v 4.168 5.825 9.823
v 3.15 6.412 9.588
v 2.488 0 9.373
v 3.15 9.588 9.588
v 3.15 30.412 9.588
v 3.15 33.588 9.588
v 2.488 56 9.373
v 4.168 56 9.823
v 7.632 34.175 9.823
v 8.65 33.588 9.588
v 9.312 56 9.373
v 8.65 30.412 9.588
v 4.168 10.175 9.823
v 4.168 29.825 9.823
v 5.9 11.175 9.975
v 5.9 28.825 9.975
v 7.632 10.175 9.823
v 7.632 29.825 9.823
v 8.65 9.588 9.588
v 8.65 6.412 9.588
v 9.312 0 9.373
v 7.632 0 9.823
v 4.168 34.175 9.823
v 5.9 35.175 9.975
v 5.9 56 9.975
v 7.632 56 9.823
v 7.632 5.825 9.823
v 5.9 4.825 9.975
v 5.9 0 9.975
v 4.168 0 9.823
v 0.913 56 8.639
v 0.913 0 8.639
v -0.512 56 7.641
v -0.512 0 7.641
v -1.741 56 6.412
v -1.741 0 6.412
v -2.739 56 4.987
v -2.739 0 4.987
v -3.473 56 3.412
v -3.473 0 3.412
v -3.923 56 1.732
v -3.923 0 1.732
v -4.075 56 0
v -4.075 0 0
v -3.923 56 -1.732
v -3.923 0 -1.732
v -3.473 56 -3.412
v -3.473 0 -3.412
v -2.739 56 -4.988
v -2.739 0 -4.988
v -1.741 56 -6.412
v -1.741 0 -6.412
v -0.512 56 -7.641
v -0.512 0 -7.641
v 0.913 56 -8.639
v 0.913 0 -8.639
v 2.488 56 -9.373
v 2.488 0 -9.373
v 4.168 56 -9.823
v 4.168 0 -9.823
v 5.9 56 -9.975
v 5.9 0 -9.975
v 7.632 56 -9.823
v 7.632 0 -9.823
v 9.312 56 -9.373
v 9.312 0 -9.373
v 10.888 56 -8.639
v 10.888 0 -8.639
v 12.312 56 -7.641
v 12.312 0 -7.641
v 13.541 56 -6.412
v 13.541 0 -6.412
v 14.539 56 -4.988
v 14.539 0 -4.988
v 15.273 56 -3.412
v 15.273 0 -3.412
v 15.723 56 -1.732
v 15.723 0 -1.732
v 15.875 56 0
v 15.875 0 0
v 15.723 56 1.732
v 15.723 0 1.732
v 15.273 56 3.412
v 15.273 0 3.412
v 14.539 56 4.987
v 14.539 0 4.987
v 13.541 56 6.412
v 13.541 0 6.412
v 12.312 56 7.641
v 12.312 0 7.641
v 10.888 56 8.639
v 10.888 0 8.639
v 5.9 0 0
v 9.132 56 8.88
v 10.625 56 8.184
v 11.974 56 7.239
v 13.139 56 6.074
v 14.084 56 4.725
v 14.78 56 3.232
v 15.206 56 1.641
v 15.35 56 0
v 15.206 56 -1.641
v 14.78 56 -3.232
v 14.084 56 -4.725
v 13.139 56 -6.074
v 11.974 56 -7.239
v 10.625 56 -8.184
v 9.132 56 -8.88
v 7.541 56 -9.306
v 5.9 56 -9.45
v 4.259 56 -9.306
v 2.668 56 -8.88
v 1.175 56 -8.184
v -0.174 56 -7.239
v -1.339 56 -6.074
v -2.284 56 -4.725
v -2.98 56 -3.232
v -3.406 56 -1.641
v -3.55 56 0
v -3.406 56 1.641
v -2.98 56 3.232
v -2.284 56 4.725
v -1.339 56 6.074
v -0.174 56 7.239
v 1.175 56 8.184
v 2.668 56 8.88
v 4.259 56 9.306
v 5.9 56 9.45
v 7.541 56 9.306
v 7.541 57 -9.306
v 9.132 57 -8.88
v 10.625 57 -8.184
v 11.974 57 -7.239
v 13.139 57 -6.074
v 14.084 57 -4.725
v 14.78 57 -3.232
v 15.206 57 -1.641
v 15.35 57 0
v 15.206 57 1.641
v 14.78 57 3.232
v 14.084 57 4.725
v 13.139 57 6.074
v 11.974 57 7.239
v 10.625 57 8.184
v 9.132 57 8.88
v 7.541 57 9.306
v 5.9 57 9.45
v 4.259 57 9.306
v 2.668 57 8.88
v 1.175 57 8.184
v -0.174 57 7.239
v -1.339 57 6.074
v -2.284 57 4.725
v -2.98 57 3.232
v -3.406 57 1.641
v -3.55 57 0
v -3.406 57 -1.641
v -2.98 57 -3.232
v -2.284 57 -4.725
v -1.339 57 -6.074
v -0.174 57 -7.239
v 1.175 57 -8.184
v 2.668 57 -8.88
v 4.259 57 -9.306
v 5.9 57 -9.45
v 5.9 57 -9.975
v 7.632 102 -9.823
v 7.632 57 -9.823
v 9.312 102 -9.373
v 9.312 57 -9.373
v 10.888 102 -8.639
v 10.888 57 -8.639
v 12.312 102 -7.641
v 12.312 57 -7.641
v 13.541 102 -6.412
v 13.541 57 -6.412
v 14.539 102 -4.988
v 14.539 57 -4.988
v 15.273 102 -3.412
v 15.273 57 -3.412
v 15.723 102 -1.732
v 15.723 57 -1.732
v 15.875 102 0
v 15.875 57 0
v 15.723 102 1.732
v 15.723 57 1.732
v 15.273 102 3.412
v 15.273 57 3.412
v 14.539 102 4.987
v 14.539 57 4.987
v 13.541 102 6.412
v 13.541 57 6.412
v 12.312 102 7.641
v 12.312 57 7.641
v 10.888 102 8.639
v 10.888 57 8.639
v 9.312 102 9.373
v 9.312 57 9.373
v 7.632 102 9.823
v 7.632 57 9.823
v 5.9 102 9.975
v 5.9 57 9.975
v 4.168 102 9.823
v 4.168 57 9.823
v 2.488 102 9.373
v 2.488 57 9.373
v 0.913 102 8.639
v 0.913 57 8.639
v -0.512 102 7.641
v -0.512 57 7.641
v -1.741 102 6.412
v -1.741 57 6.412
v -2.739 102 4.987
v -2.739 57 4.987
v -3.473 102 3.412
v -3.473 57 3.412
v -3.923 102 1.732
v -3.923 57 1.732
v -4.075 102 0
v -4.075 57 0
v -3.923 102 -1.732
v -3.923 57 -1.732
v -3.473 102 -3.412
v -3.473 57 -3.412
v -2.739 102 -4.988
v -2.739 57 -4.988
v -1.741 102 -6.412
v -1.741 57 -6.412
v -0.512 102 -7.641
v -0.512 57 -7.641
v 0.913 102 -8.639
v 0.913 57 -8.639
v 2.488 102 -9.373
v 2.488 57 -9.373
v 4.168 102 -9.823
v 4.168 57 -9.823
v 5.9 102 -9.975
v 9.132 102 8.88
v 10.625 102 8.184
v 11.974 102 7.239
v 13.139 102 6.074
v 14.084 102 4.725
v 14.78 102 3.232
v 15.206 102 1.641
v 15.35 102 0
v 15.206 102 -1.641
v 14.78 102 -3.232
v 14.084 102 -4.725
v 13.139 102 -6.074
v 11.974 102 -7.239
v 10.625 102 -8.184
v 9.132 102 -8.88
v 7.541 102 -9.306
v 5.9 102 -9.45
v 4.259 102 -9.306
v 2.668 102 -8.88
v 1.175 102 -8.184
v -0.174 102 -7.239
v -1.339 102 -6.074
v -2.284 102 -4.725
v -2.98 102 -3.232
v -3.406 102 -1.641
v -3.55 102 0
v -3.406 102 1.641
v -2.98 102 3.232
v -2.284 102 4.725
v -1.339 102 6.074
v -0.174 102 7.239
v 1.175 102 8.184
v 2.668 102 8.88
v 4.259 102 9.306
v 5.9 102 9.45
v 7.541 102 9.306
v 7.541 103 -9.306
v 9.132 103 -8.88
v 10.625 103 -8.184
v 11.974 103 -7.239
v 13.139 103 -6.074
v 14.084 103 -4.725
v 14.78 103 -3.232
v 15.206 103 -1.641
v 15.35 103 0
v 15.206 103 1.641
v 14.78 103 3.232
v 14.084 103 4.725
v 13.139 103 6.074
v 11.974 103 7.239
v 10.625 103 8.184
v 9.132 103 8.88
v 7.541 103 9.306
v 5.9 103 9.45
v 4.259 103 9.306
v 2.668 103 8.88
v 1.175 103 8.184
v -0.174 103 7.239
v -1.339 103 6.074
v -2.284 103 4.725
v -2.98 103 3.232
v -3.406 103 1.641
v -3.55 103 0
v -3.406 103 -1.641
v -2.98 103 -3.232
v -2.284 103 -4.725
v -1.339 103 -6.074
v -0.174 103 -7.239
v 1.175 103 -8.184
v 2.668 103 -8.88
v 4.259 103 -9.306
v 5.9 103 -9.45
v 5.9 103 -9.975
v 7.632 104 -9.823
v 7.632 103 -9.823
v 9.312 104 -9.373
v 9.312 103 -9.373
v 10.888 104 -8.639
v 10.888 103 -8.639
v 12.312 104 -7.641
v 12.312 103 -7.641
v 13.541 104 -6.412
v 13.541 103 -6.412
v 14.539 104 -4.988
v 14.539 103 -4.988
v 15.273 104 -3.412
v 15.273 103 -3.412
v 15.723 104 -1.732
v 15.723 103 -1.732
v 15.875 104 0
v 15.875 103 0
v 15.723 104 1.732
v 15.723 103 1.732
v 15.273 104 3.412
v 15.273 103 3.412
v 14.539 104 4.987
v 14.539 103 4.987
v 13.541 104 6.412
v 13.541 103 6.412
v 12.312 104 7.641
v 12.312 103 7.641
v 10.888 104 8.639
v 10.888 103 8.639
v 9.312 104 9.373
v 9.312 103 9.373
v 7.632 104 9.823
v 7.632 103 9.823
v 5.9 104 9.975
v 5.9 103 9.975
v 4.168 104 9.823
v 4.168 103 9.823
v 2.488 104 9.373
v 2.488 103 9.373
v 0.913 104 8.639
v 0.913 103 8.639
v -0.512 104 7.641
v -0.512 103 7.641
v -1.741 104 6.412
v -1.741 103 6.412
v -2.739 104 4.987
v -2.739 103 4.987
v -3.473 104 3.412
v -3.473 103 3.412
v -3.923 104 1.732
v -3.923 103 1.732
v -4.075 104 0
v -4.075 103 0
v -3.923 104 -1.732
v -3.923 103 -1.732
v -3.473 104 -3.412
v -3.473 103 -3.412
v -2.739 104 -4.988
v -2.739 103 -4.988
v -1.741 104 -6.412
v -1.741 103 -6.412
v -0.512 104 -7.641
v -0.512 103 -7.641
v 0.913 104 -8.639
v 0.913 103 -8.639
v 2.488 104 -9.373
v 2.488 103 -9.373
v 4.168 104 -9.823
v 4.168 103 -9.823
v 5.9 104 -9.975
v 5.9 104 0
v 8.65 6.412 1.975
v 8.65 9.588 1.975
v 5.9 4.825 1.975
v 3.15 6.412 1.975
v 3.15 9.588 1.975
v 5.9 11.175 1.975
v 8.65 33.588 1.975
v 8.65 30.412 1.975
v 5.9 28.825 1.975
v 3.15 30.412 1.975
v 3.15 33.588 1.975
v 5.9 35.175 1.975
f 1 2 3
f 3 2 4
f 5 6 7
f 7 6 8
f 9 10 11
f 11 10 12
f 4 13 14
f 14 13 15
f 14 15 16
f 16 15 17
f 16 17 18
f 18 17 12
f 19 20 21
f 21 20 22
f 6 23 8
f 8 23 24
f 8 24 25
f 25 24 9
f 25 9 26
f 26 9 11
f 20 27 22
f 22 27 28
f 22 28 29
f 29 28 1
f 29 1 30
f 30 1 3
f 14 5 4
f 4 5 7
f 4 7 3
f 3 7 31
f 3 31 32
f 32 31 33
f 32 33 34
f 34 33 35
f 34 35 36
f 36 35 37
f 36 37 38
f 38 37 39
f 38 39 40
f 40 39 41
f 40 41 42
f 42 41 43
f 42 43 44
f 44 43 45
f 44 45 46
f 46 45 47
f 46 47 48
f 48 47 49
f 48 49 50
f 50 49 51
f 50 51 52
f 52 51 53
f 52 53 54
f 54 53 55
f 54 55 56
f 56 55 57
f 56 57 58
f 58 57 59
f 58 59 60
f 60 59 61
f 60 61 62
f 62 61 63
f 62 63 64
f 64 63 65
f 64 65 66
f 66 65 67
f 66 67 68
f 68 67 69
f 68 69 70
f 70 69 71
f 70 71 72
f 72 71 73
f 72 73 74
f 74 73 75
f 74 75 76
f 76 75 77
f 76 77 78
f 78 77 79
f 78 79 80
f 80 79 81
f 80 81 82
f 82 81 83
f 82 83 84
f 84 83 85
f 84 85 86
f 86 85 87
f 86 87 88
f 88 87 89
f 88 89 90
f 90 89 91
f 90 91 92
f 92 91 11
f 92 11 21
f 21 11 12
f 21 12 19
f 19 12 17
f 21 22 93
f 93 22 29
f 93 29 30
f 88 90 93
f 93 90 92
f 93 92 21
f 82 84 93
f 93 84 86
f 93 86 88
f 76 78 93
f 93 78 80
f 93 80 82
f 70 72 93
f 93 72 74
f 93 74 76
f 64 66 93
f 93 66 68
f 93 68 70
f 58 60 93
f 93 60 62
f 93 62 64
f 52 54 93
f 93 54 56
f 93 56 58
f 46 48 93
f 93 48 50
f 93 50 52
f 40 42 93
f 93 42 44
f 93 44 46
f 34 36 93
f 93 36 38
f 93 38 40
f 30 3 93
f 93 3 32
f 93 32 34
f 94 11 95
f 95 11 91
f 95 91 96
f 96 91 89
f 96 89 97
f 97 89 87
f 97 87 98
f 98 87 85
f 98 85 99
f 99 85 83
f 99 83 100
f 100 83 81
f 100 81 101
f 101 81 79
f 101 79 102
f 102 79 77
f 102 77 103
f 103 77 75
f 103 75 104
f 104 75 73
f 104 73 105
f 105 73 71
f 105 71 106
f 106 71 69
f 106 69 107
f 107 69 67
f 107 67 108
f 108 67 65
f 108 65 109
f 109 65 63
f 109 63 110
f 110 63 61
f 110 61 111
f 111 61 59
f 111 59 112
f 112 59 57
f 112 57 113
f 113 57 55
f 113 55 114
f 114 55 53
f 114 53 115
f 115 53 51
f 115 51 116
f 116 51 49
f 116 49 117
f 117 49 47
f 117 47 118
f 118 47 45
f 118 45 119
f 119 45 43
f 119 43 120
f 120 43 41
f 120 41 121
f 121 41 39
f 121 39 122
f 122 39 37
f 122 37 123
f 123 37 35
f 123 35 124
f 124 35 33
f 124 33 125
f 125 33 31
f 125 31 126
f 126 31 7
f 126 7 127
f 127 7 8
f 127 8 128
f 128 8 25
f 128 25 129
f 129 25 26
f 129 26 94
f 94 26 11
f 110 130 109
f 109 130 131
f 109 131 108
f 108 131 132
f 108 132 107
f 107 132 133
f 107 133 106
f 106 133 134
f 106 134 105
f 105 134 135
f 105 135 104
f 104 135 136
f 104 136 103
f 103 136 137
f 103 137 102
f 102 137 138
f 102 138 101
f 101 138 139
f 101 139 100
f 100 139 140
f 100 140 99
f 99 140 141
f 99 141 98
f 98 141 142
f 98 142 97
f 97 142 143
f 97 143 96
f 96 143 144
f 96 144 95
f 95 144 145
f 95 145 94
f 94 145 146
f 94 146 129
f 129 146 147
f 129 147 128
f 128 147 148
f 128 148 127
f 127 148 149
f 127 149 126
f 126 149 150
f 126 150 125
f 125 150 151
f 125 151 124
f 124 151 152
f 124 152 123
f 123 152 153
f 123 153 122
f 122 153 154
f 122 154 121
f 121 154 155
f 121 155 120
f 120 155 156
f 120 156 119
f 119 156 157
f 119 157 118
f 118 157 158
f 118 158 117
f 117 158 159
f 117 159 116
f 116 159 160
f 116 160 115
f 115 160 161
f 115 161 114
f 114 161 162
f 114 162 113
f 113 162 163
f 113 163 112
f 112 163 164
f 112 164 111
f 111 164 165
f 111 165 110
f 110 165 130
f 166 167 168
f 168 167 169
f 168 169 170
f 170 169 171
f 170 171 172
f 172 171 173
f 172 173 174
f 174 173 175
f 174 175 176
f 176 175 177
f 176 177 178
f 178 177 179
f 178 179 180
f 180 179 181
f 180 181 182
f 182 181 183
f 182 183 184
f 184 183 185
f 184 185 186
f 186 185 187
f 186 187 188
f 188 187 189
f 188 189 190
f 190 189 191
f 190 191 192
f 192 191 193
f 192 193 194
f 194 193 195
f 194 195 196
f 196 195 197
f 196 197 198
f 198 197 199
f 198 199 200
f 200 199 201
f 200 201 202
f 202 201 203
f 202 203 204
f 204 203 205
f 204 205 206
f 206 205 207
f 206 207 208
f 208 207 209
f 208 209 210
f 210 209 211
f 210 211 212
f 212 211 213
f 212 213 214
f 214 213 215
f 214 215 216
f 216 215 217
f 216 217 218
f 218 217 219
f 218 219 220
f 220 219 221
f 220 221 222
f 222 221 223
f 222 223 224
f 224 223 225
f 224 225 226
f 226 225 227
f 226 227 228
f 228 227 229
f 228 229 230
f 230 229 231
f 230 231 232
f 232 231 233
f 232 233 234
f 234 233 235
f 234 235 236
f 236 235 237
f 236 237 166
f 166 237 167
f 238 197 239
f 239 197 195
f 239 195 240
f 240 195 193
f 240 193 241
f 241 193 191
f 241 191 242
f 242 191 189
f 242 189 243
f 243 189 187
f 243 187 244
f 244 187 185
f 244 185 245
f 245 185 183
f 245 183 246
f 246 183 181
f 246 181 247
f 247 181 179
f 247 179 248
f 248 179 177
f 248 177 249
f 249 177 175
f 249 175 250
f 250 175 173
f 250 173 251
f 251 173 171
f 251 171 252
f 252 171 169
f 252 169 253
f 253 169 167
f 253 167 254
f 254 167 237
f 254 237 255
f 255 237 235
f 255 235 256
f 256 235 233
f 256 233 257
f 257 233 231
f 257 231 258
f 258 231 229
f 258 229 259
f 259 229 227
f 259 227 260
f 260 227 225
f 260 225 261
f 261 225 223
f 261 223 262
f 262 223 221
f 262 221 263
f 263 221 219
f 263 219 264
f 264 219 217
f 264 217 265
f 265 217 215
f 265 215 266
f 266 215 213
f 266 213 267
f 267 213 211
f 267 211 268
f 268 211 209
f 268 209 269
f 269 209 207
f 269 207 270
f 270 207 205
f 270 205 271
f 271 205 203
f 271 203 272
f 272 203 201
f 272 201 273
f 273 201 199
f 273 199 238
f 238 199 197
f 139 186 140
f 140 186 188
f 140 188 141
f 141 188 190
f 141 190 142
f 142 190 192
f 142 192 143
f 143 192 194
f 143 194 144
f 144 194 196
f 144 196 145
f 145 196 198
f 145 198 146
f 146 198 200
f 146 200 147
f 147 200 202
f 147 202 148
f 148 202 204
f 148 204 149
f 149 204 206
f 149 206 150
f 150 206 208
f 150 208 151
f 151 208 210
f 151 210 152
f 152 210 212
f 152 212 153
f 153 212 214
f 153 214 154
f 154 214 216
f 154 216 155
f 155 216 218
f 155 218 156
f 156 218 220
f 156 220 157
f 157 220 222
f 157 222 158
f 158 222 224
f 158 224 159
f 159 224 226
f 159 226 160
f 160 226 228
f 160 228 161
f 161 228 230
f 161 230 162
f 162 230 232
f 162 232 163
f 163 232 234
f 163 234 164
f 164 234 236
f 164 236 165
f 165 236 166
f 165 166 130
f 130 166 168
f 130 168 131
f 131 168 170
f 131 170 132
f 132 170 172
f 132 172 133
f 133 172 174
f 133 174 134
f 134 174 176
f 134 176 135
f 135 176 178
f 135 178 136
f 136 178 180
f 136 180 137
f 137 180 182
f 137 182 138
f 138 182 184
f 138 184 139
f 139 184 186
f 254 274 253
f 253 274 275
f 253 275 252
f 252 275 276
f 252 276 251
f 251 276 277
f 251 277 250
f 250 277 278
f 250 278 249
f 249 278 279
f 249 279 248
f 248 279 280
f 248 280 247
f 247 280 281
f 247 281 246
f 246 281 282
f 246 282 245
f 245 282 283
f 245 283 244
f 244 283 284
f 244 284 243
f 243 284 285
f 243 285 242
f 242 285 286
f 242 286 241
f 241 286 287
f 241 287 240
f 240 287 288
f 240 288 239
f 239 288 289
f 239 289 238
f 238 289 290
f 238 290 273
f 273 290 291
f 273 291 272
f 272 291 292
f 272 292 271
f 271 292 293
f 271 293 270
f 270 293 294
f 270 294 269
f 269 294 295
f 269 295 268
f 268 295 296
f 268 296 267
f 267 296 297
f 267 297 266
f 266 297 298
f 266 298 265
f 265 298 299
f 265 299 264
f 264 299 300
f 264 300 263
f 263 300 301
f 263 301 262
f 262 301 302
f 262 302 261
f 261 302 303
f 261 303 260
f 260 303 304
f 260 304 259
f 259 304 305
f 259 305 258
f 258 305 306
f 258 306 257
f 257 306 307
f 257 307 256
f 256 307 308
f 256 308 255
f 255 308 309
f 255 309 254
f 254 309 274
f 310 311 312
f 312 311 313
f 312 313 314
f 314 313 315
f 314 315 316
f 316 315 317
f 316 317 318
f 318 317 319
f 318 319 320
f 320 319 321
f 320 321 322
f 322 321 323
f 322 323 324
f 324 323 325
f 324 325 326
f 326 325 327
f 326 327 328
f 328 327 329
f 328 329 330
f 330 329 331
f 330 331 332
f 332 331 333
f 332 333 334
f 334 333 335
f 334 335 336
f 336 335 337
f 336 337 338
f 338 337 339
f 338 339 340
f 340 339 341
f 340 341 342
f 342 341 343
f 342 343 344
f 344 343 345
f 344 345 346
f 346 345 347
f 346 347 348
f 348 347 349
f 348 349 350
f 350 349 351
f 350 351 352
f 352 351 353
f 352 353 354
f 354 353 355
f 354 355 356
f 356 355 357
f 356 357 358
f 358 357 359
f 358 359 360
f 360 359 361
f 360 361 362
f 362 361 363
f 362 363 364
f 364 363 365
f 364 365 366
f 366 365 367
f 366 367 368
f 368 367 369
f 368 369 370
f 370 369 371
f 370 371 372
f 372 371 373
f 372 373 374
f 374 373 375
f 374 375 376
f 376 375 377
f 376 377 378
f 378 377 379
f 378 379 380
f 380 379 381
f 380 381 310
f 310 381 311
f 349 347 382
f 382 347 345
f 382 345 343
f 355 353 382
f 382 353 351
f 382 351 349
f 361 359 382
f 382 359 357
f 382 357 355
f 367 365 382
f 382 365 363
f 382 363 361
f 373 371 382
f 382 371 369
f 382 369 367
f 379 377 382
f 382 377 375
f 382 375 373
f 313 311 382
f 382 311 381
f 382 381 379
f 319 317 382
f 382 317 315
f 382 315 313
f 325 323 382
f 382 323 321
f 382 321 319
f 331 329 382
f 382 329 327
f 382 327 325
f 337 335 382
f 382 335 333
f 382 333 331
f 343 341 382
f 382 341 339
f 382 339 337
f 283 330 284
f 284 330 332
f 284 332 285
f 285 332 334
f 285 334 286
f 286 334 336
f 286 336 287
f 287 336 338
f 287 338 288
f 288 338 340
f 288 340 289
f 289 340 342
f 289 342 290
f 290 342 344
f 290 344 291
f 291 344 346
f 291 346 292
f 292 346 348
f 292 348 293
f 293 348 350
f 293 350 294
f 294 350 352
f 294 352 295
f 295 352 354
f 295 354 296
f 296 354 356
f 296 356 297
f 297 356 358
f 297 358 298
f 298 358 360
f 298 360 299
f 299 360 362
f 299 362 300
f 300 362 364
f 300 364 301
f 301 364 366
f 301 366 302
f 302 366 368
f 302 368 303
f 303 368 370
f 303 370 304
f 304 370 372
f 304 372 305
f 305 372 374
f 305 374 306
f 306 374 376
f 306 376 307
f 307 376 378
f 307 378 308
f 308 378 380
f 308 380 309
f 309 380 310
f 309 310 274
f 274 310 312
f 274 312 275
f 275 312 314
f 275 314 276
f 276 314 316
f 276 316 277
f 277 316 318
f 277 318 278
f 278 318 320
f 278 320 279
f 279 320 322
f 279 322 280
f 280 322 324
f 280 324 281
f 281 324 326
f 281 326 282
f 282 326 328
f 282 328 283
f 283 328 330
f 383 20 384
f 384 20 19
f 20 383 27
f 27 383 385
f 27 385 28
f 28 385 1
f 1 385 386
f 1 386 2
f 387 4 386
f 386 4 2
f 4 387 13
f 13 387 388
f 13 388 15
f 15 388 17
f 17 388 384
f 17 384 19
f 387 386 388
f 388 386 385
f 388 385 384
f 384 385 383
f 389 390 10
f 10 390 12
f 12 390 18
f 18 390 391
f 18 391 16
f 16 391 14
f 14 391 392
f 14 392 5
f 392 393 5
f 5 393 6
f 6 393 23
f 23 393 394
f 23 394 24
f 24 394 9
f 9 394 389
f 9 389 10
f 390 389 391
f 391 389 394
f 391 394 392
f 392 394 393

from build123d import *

# Parameters (mm, degrees)
SKETCH_1_R          = 9.975
EXTRUDE_1_DEPTH     = 40
SKETCH_5_R          = 9.975
F_16MM_DEPTH        = 16
SKETCH_6_R          = 9.45
EXTRUDE_1_2_DEPTH   = 1
SKETCH_7_R          = 9.975
EXTRUDE_4_DEPTH     = 45
SKETCH_8_R          = 9.45
EXTRUDE_2_DEPTH     = 1
SKETCH_9_R          = 9.975
EXTRUDE_6_DEPTH     = 1
CUT_EXTRUDE_1_DEPTH = 8


with BuildPart() as part:
    # 草图1 → Extrude 1 (new body)
    with BuildSketch(Plane(origin=(0, 0, 0), x_dir=(1, 0, 0), z_dir=(0, 1, 0))):
        with Locations(Location((5.9, 0, 0), (0, 0, 270))):
            Circle(SKETCH_1_R)
    extrude(amount=EXTRUDE_1_DEPTH)

    # 草图5 → 16mm 铰链间距 (add)
    with BuildSketch(Plane(origin=(0, 40, 0), x_dir=(1, 0, 0), z_dir=(0, 1, 0))):
        with Locations(Location((5.9, 0, 0), (0, 0, 270))):
            Circle(SKETCH_5_R)
    extrude(amount=F_16MM_DEPTH)

    # 草图6 → Extrude 1 2 (add)
    with BuildSketch(Plane(origin=(0, 56, 0), x_dir=(1, 0, 0), z_dir=(0, 1, 0))):
        with Locations(Location((5.9, 0, 0), (0, 0, 270))):
            Circle(SKETCH_6_R)
    extrude(amount=EXTRUDE_1_2_DEPTH)

    # 草图7 → 凸台-拉伸4 (add)
    with BuildSketch(Plane(origin=(0, 57, 0), x_dir=(1, 0, 0), z_dir=(0, 1, 0))):
        with Locations(Location((5.9, 0, 0), (0, 0, 270))):
            Circle(SKETCH_7_R)
    extrude(amount=EXTRUDE_4_DEPTH)

    # 草图8 → 卡簧2 (add)
    with BuildSketch(Plane(origin=(0, 102, 0), x_dir=(1, 0, 0), z_dir=(0, 1, 0))):
        with Locations(Location((5.9, 0, 0), (0, 0, 270))):
            Circle(SKETCH_8_R)
    extrude(amount=EXTRUDE_2_DEPTH)

    # 草图9 → 凸台-拉伸6 (add)
    with BuildSketch(Plane(origin=(0, 103, 0), x_dir=(1, 0, 0), z_dir=(0, 1, 0))):
        with Locations(Location((5.9, 0, 0), (0, 0, 270))):
            Circle(SKETCH_9_R)
    extrude(amount=EXTRUDE_6_DEPTH)

    # 草图10 → 切除-拉伸1 (cut)
    with BuildSketch(Plane.XY.offset(9.975)):
        Polygon((8.65, 9.58771324), (5.9, 11.175426481), (3.15, 9.58771324), (3.15, 6.41228676), (5.9, 4.824573519), (8.65, 6.41228676), align=None)
    cut_extrude_1 = extrude(amount=-CUT_EXTRUDE_1_DEPTH, mode=Mode.SUBTRACT)

    # 镜向2: 切除-拉伸1 across plane
    add(cut_extrude_1.mirror(Plane(origin=(0, 20, 0), x_dir=(0, 0, 1), z_dir=(0, -1, 0))), mode=Mode.SUBTRACT)


solid = part.part
